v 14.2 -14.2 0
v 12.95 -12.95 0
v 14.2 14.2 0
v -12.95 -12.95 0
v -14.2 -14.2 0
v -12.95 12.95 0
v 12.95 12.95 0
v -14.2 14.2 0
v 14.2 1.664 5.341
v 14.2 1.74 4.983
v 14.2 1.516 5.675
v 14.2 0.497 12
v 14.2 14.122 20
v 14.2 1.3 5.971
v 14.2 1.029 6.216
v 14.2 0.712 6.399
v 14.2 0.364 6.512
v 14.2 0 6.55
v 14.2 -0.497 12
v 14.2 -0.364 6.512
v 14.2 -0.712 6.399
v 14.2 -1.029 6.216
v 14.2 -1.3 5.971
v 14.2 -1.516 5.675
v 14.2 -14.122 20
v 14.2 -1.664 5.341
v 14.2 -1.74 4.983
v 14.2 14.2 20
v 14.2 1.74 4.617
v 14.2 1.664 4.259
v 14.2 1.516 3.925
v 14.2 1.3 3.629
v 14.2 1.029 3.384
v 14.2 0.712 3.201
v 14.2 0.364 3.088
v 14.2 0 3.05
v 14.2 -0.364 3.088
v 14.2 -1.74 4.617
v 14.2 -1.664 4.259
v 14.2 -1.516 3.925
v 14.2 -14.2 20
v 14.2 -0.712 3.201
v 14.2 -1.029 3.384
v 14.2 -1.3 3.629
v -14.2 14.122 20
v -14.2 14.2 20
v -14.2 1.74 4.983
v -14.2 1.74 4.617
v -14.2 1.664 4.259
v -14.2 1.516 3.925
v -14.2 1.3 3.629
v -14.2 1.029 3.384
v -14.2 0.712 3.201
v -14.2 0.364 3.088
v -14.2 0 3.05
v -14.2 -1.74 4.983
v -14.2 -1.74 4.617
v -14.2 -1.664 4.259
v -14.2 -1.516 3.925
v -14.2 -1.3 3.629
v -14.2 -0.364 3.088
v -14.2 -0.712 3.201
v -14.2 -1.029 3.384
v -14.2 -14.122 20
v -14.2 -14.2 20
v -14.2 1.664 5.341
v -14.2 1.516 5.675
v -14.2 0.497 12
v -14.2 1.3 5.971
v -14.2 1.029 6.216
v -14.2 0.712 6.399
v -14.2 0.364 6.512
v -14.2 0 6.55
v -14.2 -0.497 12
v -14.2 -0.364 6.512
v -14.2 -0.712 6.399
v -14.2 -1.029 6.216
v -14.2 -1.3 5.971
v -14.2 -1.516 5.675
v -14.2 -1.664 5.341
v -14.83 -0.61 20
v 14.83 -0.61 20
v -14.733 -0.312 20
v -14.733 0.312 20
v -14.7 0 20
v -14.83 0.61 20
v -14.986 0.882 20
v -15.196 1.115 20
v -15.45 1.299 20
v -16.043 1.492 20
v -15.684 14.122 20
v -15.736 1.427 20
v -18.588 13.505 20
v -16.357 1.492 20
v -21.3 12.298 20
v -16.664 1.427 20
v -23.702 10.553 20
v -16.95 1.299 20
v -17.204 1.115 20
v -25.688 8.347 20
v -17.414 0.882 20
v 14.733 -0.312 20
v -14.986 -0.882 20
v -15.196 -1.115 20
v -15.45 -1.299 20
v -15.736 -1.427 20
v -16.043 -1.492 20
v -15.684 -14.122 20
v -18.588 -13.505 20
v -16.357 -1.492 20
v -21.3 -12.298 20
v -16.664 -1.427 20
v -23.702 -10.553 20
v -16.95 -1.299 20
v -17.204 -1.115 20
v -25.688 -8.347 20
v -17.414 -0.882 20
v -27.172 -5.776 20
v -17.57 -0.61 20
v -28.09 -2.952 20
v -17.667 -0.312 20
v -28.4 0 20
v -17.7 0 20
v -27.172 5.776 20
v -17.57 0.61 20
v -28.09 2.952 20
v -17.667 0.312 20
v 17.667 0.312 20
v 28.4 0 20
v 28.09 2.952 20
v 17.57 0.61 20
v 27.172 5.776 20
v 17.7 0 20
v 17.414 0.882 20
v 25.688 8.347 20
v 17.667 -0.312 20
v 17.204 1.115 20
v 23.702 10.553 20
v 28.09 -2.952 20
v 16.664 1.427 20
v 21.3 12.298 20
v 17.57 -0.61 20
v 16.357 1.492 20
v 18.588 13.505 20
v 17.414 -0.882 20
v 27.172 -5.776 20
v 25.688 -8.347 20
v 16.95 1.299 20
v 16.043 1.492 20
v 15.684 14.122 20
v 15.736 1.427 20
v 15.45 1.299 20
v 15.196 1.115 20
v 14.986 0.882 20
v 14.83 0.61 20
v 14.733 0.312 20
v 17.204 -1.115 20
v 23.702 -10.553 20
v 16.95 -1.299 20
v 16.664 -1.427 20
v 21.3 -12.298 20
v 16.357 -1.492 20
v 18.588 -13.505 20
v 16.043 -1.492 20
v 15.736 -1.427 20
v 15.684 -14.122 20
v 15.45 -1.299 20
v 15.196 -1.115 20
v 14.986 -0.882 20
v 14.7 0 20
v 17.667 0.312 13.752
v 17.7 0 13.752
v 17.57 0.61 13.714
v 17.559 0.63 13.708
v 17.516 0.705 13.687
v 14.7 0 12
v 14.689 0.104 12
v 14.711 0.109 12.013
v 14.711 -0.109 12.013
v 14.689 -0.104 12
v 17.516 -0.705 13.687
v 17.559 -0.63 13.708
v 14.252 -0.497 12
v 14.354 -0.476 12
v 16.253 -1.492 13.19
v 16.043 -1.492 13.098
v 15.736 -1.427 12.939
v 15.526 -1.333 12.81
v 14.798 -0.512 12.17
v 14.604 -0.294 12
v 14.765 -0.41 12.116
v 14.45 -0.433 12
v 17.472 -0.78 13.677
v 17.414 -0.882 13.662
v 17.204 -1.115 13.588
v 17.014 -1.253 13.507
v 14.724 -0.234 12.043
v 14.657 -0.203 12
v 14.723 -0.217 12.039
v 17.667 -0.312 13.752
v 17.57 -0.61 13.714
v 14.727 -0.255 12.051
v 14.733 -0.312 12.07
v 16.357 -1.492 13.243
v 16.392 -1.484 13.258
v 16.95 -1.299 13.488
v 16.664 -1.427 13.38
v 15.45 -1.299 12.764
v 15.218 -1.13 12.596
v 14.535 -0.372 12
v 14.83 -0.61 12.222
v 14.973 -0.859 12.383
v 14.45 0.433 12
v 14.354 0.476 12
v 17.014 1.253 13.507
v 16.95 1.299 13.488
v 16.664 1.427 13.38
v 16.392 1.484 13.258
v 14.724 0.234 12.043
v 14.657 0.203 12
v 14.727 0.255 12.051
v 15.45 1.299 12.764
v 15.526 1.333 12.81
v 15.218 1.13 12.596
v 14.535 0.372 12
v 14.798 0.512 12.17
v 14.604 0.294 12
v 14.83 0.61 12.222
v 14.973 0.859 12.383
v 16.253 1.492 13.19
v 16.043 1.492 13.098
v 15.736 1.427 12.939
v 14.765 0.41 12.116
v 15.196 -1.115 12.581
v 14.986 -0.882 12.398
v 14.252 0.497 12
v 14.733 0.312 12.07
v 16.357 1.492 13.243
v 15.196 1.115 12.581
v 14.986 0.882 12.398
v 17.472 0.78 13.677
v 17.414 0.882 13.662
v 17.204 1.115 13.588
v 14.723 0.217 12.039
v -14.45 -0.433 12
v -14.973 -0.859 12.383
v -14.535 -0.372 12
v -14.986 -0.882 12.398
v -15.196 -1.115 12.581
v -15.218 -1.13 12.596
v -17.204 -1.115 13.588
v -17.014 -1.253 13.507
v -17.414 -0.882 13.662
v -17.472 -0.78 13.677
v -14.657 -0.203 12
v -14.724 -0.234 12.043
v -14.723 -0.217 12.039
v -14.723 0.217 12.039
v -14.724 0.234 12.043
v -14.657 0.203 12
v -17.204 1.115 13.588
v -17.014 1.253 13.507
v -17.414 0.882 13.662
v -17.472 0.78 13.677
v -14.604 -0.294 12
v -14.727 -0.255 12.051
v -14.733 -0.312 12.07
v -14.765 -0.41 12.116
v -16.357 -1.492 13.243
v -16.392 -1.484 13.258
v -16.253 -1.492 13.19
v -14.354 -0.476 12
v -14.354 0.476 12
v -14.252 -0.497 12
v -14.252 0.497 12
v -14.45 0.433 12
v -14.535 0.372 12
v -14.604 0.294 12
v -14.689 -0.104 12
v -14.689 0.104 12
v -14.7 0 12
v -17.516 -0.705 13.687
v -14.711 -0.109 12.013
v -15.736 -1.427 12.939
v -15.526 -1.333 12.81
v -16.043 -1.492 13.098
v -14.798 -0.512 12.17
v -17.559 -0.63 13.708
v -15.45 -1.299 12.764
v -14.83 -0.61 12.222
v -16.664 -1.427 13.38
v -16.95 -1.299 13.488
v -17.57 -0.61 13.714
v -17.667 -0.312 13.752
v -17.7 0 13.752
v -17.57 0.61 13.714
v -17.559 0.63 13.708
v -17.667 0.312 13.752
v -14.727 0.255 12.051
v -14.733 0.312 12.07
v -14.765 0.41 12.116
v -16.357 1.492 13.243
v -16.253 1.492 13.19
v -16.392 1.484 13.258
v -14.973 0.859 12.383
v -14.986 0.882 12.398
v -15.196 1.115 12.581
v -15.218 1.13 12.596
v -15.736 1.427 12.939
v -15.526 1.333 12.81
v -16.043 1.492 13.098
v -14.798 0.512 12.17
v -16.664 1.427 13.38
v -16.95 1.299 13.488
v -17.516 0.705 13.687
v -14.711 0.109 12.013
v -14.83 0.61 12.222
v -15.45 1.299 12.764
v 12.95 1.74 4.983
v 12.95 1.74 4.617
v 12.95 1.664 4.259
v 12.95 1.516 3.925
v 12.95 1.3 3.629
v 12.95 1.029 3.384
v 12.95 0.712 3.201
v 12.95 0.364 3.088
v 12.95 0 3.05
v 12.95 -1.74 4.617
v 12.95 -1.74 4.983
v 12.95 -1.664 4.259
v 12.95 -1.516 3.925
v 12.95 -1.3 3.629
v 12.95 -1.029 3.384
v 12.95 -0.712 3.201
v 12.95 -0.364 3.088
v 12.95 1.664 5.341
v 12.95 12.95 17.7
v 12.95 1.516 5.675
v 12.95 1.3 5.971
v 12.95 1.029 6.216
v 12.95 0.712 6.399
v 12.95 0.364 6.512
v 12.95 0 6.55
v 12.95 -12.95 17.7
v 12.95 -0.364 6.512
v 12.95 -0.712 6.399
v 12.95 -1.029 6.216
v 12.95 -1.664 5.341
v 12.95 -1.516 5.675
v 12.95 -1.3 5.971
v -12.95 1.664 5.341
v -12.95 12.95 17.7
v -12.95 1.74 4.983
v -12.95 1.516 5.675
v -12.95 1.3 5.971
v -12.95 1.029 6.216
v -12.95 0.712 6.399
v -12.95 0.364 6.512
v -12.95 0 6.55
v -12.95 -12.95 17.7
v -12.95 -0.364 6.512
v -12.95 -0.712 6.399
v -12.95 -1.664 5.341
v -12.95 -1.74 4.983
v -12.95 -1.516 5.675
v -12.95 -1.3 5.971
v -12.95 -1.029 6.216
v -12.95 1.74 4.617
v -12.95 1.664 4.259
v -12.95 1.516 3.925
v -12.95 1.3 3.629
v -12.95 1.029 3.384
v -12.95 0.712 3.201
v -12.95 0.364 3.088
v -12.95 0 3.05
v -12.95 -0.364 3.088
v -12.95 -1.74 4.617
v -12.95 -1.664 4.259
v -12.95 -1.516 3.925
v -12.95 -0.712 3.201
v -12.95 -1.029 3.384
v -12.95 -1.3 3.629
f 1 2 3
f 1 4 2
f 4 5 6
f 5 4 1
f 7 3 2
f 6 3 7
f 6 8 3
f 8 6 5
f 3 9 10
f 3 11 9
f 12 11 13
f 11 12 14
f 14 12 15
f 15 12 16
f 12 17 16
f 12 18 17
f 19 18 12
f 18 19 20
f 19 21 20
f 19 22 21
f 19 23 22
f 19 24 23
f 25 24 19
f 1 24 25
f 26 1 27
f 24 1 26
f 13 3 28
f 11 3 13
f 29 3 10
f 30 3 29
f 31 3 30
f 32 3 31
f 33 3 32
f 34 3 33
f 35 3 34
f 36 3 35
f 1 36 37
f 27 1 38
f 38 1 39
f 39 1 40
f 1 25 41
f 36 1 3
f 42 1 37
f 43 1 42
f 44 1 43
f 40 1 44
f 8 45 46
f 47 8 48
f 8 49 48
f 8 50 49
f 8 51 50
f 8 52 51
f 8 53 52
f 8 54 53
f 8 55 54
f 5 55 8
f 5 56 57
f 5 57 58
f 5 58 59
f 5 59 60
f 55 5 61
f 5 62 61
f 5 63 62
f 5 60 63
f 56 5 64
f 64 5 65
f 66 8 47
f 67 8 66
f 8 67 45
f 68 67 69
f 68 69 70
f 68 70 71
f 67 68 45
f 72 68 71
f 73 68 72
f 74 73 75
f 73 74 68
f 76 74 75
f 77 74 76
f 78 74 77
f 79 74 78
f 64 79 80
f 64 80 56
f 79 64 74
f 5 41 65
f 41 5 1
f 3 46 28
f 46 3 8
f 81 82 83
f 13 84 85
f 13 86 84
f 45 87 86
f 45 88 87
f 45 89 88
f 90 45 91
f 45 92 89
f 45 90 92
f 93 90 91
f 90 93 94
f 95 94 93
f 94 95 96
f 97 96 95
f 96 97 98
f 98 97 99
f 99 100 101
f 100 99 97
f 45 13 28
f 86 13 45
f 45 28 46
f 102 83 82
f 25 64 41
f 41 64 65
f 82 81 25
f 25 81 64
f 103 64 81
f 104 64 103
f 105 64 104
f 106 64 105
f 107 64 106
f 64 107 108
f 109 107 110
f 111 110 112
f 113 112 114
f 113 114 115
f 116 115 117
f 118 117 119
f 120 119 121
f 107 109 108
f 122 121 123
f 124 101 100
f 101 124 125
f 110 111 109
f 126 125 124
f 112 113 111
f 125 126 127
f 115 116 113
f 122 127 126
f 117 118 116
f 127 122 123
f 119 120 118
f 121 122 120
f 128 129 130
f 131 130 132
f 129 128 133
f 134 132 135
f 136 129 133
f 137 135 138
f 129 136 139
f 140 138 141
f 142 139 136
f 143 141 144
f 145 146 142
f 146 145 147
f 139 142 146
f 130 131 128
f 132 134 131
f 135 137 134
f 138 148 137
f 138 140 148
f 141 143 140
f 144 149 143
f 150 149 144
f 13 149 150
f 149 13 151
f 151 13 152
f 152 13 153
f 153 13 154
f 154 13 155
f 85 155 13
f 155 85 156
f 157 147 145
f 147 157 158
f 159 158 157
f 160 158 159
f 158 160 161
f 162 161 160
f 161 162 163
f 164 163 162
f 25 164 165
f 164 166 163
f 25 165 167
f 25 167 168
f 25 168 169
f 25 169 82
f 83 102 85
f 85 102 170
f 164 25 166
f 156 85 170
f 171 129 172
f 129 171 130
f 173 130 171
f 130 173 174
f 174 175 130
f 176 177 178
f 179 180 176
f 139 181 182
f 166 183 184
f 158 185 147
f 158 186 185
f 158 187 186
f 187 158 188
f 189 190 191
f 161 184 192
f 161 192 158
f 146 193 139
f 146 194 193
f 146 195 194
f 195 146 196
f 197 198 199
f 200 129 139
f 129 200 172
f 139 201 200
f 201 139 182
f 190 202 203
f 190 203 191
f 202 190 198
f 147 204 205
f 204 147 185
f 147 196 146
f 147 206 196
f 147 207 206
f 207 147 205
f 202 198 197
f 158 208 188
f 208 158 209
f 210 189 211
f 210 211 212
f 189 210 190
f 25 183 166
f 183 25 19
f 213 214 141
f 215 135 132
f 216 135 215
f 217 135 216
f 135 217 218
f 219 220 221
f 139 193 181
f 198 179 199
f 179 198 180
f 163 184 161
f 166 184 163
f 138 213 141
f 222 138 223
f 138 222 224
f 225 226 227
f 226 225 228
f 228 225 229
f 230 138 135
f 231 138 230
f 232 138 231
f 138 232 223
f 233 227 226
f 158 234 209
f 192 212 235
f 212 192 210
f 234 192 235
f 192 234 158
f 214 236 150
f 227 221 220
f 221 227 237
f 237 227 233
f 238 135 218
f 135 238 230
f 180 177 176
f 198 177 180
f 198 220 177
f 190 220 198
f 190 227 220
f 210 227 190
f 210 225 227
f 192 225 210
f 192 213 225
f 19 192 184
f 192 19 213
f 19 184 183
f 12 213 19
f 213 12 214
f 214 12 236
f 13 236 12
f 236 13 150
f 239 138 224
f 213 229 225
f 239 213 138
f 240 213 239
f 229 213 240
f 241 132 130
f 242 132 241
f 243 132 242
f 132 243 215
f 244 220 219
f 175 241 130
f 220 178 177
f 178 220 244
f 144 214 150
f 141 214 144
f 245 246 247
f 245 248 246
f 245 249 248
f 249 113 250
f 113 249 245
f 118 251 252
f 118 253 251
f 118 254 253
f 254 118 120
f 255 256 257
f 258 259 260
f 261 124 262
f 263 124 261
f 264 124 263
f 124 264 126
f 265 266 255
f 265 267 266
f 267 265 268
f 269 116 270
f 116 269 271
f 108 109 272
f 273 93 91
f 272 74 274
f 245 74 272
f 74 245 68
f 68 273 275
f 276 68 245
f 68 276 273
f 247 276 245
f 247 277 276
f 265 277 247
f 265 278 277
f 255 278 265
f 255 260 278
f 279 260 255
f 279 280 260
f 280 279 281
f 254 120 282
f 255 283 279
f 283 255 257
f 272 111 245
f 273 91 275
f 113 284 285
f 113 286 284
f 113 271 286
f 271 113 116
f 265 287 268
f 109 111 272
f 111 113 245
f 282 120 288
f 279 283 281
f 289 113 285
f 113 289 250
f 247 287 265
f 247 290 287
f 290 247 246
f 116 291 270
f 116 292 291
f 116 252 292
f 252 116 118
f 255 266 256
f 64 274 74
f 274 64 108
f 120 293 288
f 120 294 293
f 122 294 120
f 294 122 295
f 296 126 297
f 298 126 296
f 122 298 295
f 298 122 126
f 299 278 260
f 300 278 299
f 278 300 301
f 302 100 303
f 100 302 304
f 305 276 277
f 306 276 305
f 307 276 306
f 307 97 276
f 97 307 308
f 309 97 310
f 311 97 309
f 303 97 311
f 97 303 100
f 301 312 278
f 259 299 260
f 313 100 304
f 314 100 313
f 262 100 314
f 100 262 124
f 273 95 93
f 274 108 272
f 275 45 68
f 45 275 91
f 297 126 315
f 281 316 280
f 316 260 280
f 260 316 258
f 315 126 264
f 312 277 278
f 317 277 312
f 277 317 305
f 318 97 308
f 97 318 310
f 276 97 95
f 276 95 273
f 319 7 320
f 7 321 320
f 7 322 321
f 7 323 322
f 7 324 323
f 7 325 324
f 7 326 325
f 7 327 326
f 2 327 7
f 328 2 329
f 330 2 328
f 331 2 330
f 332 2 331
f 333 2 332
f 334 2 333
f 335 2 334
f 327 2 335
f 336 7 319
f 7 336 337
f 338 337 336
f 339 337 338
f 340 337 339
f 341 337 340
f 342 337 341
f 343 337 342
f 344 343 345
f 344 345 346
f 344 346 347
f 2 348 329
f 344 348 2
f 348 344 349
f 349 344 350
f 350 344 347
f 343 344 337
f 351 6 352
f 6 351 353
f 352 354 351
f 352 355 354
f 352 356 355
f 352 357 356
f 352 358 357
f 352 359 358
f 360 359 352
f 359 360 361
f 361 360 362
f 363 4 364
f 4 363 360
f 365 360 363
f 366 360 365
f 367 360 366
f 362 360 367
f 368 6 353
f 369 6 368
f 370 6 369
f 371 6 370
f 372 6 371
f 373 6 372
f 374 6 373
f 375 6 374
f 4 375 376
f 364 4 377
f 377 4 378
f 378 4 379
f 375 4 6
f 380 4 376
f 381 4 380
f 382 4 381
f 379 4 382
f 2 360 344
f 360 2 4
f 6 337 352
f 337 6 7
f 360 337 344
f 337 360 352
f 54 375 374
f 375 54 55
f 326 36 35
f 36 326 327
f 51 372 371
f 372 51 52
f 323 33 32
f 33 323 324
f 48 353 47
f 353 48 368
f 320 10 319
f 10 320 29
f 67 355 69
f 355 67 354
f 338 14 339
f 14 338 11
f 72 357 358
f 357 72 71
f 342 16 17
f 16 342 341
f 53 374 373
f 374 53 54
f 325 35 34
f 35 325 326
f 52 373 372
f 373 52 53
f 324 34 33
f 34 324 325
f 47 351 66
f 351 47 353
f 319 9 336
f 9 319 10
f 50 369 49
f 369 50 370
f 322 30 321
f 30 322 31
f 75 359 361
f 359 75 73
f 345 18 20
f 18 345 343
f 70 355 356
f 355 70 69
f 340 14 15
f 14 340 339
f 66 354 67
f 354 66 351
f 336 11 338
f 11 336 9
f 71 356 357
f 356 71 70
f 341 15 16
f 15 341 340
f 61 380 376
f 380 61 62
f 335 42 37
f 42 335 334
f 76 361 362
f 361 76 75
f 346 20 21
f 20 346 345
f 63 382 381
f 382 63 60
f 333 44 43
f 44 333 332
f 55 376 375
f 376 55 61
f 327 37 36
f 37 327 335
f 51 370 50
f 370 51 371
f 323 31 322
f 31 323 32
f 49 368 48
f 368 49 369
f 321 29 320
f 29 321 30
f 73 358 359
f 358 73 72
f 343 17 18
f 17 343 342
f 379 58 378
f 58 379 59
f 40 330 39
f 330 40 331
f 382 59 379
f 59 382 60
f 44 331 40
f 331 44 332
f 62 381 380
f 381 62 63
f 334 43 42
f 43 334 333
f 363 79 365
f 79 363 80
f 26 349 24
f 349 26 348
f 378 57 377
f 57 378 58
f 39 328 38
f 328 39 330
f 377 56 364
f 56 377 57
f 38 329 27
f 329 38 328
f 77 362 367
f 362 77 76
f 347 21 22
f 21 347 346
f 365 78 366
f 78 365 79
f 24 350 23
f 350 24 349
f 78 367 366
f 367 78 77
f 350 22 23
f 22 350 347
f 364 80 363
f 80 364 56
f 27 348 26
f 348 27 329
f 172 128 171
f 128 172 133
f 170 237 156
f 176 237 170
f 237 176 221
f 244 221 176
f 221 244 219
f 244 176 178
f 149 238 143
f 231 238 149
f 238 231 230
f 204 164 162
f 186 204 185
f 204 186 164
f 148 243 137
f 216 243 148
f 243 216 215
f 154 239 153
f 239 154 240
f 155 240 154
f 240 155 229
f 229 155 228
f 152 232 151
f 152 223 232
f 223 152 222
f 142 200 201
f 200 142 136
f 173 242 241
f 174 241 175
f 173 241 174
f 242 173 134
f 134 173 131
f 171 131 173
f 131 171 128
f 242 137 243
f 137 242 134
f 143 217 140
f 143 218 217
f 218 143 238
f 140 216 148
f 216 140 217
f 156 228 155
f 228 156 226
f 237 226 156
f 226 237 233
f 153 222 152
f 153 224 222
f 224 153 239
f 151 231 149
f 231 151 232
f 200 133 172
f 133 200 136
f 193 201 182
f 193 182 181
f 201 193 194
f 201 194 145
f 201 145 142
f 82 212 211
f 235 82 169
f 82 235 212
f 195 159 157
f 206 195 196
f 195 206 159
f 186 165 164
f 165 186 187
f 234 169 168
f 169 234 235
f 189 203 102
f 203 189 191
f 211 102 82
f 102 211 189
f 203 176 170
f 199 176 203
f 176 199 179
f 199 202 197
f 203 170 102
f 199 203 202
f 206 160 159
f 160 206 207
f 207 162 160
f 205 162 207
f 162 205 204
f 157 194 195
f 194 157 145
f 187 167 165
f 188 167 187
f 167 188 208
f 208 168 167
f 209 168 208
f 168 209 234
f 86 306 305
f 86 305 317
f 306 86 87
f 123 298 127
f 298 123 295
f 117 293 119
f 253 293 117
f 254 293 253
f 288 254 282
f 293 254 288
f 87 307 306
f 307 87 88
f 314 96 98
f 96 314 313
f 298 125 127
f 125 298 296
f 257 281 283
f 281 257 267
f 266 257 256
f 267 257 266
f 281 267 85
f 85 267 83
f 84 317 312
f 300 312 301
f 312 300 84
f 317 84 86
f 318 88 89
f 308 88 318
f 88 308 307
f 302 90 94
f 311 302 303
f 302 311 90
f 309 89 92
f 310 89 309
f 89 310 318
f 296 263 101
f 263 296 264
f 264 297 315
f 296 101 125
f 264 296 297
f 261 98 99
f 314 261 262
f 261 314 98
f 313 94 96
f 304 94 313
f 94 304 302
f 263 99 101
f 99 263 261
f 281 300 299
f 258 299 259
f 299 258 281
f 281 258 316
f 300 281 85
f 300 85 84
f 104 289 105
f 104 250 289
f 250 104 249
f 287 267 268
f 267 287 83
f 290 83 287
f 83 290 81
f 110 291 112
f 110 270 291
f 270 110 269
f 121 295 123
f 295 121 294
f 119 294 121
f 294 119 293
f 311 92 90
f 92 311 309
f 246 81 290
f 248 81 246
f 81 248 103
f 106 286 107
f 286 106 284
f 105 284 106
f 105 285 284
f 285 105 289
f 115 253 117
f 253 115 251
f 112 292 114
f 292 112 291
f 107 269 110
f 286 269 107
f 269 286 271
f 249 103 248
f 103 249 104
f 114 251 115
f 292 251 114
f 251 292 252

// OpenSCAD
// Corner bracket for roomba
$fs = 0.01;

wiggle = 0.5;
bar_side = 25.4+wiggle;
bracket_thickness = 2.5;
bracket_height = 20;
epsilon=0.1;
base_thickness = 2.5;
side_support_height = 8;
top_hole = 3;
top_hole_offset = 2;
side_hole = 3.5;
center = (bracket_thickness + bar_side)/2;

module bracket_nohole() {
    translate([-(bracket_thickness + bar_side)/2, -(bracket_thickness + bar_side)/2, 0])
        linear_extrude(height=bracket_height)
            square(bar_side+bracket_thickness);
    translate([(bracket_thickness + bar_side)/2, 0, bracket_height-side_support_height])
        cylinder(d2= bar_side+bracket_thickness, d1=1, h=side_support_height);
    translate([-(bracket_thickness + bar_side)/2, 0, bracket_height-side_support_height])
        cylinder(d2= bar_side+bracket_thickness, d1=1, h=side_support_height);
}
module bracket_mainhole() {
    difference(){
        bracket_nohole();
        translate([-(bar_side)/2, -(bar_side)/2, -base_thickness])
            linear_extrude(height=bracket_height+2*epsilon)
                square(bar_side);
    }
}
module bracket_sidehole() {
    difference(){
        bracket_mainhole();
        translate([-center-epsilon, 0, bracket_height-base_thickness-25.4*.5])
            rotate([0, 90, 0])
                cylinder(d=side_hole, h= bar_side + bracket_thickness+2*epsilon);
    }
}

module bracket(){
    difference(){
        bracket_sidehole();
        translate([center+top_hole_offset, 0, 0])
            cylinder(d=top_hole, h=bracket_height+2*epsilon);
        translate([-(center+top_hole_offset), 0,  0])
            cylinder(d=top_hole, h=bracket_height+2*epsilon);
    }
}

bracket();
